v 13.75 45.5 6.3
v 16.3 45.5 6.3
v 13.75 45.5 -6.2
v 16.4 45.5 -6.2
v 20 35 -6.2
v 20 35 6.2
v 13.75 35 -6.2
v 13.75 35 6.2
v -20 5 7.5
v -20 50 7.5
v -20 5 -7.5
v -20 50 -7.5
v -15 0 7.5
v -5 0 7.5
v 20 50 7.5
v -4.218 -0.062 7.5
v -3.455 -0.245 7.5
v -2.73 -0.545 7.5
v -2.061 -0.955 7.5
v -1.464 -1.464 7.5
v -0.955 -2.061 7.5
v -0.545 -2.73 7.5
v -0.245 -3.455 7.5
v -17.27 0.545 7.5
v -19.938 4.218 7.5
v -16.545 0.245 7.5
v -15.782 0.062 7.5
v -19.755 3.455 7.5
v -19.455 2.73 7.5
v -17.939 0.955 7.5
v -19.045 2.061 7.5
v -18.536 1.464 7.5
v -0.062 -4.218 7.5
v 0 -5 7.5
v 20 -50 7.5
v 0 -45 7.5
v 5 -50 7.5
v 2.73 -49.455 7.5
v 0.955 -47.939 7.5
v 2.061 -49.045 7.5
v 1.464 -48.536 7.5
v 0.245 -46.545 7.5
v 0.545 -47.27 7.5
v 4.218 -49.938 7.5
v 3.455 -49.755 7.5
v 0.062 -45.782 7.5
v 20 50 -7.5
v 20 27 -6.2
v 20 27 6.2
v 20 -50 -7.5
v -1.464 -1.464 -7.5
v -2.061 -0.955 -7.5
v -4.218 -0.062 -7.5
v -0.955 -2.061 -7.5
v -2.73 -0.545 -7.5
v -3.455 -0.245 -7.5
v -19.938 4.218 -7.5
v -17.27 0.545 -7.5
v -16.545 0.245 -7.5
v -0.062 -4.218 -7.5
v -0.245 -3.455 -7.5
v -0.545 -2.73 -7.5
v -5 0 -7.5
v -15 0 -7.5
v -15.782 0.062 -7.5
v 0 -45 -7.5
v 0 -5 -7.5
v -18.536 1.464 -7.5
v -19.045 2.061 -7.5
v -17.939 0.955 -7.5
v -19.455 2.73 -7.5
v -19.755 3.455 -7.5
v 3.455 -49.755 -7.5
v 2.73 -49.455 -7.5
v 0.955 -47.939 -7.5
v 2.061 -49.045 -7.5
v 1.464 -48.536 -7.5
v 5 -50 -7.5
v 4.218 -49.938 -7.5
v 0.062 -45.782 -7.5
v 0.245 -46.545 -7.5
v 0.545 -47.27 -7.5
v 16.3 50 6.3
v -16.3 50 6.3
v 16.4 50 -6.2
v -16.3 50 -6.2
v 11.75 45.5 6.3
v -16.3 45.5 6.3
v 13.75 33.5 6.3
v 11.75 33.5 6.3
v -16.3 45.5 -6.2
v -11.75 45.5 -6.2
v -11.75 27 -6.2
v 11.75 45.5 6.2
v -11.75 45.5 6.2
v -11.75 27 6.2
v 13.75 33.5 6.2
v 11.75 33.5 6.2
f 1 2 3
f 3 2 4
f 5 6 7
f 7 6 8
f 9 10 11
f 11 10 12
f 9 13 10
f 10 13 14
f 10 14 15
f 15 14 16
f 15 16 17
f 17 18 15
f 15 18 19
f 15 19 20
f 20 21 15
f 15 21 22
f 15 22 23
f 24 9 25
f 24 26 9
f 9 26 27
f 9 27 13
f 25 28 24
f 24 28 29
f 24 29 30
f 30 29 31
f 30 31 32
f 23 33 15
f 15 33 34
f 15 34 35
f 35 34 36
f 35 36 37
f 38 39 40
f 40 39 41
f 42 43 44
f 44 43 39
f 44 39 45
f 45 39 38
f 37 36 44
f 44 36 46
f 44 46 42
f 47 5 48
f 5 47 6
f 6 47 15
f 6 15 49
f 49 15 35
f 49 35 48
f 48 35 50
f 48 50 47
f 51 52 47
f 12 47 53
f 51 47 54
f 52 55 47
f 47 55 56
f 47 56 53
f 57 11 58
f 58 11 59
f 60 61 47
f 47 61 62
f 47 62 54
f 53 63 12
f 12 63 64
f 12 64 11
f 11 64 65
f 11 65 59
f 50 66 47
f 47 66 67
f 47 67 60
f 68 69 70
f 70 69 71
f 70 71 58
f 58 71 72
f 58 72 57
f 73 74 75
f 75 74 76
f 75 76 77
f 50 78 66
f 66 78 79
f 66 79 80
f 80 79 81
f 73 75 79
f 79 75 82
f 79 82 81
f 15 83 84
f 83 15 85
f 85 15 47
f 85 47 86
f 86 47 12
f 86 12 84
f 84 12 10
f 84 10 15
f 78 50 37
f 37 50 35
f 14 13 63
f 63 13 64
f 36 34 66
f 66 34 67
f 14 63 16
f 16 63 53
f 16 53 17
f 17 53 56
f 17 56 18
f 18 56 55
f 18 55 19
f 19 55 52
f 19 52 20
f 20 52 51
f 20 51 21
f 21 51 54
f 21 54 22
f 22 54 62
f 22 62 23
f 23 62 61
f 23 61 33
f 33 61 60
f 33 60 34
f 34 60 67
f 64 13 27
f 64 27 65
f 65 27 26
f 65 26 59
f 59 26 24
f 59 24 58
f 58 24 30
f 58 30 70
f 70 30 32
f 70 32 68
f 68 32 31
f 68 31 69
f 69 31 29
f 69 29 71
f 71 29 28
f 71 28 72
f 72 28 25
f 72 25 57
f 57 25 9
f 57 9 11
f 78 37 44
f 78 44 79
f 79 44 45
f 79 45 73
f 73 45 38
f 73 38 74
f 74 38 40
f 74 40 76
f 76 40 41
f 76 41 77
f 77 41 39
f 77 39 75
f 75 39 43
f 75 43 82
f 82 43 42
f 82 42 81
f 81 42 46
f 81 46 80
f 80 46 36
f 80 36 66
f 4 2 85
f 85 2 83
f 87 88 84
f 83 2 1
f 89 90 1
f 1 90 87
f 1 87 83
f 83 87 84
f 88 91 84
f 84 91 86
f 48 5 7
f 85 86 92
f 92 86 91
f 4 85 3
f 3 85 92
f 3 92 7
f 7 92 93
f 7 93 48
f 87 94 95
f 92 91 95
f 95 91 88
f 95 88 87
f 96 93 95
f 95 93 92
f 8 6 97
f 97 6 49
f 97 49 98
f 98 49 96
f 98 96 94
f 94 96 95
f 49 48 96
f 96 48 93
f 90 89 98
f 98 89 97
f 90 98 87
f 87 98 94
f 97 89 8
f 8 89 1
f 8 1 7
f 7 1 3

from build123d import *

# Parameters (mm, degrees)
SKETCH_1_W          = 40
SKETCH_1_H          = 15
EXTRUDE_1_DEPTH     = 50
SKETCH_2_W          = 20
SKETCH_2_H          = 50
CUT_EXTRUDE_1_DEPTH = 16
FILLET_2_R          = 5
FILLET_3_R          = 5
CUT_EXTRUDE_2_DEPTH = 4.5
SKETCH_5_W          = 23.5
SKETCH_5_H          = 12.4
CUT_EXTRUDE_3_DEPTH = 18.5
SKETCH_7_W          = 12.4
SKETCH_7_H          = 8
CUT_EXTRUDE_4_DEPTH = 9.25
CUT_EXTRUDE_7_DEPTH = 12


with BuildPart() as part:
    # 스케치1 → 보스-돌출1 (new body, symmetric)
    with BuildSketch(Plane(origin=(0, 0, 0), x_dir=(1, 0, 0), z_dir=(0, 1, 0))):
        Rectangle(SKETCH_1_W, SKETCH_1_H)
    extrude(amount=EXTRUDE_1_DEPTH, both=True)

    # 스케치2 → 컷-돌출1 (cut, through all)
    with BuildSketch(Plane.XY.offset(7.5)):
        with Locations((-10, -25)):
            Rectangle(SKETCH_2_W, SKETCH_2_H)
    extrude(amount=-CUT_EXTRUDE_1_DEPTH, mode=Mode.SUBTRACT)

    # 필렛2
    fillet_2_edges = [part.edges().sort_by_distance(p)[0] for p in [
        (-20, 0, 0),
        (0, 0, 0),
    ]]
    fillet(fillet_2_edges, radius=FILLET_2_R)

    # 필렛3
    fillet_3_edges = [part.edges().sort_by_distance(p)[0] for p in [
        (0, -50, 0),
    ]]
    fillet(fillet_3_edges, radius=FILLET_3_R)

    # 스케치4 → 컷-돌출2 (cut)
    with BuildSketch(Plane(origin=(0, 50, 0), x_dir=(1, 0, 0), z_dir=(0, 1, 0))):
        Polygon((16.4, 6.2), (-16.3, 6.2), (-16.3, -6.3), (16.3, -6.3), align=None)
    extrude(amount=-CUT_EXTRUDE_2_DEPTH, mode=Mode.SUBTRACT)

    # 스케치5 → 컷-돌출3 (cut)
    with BuildSketch(Plane(origin=(0, 45.5, 0), x_dir=(1, 0, 0), z_dir=(0, 1, 0))):
        Rectangle(SKETCH_5_W, SKETCH_5_H)
    extrude(amount=-CUT_EXTRUDE_3_DEPTH, mode=Mode.SUBTRACT)

    # 스케치7 → 컷-돌출4 (cut, through all)
    with BuildSketch(Plane.ZY.offset(-11.75)):
        with Locations((0, 31)):
            Rectangle(SKETCH_7_W, SKETCH_7_H)
    extrude(amount=-CUT_EXTRUDE_4_DEPTH, mode=Mode.SUBTRACT)

    # 스케치10 → 컷-돌출7 (cut)
    with BuildSketch(Plane(origin=(0, 45.5, 0), x_dir=(1, 0, 0), z_dir=(0, 1, 0))):
        Polygon((13.75, -6.3), (13.75, 6.2), (11.75, 6.2), (11.75, -6.2), (11.75, -6.3), align=None)
    extrude(amount=-CUT_EXTRUDE_7_DEPTH, mode=Mode.SUBTRACT)


solid = part.part
